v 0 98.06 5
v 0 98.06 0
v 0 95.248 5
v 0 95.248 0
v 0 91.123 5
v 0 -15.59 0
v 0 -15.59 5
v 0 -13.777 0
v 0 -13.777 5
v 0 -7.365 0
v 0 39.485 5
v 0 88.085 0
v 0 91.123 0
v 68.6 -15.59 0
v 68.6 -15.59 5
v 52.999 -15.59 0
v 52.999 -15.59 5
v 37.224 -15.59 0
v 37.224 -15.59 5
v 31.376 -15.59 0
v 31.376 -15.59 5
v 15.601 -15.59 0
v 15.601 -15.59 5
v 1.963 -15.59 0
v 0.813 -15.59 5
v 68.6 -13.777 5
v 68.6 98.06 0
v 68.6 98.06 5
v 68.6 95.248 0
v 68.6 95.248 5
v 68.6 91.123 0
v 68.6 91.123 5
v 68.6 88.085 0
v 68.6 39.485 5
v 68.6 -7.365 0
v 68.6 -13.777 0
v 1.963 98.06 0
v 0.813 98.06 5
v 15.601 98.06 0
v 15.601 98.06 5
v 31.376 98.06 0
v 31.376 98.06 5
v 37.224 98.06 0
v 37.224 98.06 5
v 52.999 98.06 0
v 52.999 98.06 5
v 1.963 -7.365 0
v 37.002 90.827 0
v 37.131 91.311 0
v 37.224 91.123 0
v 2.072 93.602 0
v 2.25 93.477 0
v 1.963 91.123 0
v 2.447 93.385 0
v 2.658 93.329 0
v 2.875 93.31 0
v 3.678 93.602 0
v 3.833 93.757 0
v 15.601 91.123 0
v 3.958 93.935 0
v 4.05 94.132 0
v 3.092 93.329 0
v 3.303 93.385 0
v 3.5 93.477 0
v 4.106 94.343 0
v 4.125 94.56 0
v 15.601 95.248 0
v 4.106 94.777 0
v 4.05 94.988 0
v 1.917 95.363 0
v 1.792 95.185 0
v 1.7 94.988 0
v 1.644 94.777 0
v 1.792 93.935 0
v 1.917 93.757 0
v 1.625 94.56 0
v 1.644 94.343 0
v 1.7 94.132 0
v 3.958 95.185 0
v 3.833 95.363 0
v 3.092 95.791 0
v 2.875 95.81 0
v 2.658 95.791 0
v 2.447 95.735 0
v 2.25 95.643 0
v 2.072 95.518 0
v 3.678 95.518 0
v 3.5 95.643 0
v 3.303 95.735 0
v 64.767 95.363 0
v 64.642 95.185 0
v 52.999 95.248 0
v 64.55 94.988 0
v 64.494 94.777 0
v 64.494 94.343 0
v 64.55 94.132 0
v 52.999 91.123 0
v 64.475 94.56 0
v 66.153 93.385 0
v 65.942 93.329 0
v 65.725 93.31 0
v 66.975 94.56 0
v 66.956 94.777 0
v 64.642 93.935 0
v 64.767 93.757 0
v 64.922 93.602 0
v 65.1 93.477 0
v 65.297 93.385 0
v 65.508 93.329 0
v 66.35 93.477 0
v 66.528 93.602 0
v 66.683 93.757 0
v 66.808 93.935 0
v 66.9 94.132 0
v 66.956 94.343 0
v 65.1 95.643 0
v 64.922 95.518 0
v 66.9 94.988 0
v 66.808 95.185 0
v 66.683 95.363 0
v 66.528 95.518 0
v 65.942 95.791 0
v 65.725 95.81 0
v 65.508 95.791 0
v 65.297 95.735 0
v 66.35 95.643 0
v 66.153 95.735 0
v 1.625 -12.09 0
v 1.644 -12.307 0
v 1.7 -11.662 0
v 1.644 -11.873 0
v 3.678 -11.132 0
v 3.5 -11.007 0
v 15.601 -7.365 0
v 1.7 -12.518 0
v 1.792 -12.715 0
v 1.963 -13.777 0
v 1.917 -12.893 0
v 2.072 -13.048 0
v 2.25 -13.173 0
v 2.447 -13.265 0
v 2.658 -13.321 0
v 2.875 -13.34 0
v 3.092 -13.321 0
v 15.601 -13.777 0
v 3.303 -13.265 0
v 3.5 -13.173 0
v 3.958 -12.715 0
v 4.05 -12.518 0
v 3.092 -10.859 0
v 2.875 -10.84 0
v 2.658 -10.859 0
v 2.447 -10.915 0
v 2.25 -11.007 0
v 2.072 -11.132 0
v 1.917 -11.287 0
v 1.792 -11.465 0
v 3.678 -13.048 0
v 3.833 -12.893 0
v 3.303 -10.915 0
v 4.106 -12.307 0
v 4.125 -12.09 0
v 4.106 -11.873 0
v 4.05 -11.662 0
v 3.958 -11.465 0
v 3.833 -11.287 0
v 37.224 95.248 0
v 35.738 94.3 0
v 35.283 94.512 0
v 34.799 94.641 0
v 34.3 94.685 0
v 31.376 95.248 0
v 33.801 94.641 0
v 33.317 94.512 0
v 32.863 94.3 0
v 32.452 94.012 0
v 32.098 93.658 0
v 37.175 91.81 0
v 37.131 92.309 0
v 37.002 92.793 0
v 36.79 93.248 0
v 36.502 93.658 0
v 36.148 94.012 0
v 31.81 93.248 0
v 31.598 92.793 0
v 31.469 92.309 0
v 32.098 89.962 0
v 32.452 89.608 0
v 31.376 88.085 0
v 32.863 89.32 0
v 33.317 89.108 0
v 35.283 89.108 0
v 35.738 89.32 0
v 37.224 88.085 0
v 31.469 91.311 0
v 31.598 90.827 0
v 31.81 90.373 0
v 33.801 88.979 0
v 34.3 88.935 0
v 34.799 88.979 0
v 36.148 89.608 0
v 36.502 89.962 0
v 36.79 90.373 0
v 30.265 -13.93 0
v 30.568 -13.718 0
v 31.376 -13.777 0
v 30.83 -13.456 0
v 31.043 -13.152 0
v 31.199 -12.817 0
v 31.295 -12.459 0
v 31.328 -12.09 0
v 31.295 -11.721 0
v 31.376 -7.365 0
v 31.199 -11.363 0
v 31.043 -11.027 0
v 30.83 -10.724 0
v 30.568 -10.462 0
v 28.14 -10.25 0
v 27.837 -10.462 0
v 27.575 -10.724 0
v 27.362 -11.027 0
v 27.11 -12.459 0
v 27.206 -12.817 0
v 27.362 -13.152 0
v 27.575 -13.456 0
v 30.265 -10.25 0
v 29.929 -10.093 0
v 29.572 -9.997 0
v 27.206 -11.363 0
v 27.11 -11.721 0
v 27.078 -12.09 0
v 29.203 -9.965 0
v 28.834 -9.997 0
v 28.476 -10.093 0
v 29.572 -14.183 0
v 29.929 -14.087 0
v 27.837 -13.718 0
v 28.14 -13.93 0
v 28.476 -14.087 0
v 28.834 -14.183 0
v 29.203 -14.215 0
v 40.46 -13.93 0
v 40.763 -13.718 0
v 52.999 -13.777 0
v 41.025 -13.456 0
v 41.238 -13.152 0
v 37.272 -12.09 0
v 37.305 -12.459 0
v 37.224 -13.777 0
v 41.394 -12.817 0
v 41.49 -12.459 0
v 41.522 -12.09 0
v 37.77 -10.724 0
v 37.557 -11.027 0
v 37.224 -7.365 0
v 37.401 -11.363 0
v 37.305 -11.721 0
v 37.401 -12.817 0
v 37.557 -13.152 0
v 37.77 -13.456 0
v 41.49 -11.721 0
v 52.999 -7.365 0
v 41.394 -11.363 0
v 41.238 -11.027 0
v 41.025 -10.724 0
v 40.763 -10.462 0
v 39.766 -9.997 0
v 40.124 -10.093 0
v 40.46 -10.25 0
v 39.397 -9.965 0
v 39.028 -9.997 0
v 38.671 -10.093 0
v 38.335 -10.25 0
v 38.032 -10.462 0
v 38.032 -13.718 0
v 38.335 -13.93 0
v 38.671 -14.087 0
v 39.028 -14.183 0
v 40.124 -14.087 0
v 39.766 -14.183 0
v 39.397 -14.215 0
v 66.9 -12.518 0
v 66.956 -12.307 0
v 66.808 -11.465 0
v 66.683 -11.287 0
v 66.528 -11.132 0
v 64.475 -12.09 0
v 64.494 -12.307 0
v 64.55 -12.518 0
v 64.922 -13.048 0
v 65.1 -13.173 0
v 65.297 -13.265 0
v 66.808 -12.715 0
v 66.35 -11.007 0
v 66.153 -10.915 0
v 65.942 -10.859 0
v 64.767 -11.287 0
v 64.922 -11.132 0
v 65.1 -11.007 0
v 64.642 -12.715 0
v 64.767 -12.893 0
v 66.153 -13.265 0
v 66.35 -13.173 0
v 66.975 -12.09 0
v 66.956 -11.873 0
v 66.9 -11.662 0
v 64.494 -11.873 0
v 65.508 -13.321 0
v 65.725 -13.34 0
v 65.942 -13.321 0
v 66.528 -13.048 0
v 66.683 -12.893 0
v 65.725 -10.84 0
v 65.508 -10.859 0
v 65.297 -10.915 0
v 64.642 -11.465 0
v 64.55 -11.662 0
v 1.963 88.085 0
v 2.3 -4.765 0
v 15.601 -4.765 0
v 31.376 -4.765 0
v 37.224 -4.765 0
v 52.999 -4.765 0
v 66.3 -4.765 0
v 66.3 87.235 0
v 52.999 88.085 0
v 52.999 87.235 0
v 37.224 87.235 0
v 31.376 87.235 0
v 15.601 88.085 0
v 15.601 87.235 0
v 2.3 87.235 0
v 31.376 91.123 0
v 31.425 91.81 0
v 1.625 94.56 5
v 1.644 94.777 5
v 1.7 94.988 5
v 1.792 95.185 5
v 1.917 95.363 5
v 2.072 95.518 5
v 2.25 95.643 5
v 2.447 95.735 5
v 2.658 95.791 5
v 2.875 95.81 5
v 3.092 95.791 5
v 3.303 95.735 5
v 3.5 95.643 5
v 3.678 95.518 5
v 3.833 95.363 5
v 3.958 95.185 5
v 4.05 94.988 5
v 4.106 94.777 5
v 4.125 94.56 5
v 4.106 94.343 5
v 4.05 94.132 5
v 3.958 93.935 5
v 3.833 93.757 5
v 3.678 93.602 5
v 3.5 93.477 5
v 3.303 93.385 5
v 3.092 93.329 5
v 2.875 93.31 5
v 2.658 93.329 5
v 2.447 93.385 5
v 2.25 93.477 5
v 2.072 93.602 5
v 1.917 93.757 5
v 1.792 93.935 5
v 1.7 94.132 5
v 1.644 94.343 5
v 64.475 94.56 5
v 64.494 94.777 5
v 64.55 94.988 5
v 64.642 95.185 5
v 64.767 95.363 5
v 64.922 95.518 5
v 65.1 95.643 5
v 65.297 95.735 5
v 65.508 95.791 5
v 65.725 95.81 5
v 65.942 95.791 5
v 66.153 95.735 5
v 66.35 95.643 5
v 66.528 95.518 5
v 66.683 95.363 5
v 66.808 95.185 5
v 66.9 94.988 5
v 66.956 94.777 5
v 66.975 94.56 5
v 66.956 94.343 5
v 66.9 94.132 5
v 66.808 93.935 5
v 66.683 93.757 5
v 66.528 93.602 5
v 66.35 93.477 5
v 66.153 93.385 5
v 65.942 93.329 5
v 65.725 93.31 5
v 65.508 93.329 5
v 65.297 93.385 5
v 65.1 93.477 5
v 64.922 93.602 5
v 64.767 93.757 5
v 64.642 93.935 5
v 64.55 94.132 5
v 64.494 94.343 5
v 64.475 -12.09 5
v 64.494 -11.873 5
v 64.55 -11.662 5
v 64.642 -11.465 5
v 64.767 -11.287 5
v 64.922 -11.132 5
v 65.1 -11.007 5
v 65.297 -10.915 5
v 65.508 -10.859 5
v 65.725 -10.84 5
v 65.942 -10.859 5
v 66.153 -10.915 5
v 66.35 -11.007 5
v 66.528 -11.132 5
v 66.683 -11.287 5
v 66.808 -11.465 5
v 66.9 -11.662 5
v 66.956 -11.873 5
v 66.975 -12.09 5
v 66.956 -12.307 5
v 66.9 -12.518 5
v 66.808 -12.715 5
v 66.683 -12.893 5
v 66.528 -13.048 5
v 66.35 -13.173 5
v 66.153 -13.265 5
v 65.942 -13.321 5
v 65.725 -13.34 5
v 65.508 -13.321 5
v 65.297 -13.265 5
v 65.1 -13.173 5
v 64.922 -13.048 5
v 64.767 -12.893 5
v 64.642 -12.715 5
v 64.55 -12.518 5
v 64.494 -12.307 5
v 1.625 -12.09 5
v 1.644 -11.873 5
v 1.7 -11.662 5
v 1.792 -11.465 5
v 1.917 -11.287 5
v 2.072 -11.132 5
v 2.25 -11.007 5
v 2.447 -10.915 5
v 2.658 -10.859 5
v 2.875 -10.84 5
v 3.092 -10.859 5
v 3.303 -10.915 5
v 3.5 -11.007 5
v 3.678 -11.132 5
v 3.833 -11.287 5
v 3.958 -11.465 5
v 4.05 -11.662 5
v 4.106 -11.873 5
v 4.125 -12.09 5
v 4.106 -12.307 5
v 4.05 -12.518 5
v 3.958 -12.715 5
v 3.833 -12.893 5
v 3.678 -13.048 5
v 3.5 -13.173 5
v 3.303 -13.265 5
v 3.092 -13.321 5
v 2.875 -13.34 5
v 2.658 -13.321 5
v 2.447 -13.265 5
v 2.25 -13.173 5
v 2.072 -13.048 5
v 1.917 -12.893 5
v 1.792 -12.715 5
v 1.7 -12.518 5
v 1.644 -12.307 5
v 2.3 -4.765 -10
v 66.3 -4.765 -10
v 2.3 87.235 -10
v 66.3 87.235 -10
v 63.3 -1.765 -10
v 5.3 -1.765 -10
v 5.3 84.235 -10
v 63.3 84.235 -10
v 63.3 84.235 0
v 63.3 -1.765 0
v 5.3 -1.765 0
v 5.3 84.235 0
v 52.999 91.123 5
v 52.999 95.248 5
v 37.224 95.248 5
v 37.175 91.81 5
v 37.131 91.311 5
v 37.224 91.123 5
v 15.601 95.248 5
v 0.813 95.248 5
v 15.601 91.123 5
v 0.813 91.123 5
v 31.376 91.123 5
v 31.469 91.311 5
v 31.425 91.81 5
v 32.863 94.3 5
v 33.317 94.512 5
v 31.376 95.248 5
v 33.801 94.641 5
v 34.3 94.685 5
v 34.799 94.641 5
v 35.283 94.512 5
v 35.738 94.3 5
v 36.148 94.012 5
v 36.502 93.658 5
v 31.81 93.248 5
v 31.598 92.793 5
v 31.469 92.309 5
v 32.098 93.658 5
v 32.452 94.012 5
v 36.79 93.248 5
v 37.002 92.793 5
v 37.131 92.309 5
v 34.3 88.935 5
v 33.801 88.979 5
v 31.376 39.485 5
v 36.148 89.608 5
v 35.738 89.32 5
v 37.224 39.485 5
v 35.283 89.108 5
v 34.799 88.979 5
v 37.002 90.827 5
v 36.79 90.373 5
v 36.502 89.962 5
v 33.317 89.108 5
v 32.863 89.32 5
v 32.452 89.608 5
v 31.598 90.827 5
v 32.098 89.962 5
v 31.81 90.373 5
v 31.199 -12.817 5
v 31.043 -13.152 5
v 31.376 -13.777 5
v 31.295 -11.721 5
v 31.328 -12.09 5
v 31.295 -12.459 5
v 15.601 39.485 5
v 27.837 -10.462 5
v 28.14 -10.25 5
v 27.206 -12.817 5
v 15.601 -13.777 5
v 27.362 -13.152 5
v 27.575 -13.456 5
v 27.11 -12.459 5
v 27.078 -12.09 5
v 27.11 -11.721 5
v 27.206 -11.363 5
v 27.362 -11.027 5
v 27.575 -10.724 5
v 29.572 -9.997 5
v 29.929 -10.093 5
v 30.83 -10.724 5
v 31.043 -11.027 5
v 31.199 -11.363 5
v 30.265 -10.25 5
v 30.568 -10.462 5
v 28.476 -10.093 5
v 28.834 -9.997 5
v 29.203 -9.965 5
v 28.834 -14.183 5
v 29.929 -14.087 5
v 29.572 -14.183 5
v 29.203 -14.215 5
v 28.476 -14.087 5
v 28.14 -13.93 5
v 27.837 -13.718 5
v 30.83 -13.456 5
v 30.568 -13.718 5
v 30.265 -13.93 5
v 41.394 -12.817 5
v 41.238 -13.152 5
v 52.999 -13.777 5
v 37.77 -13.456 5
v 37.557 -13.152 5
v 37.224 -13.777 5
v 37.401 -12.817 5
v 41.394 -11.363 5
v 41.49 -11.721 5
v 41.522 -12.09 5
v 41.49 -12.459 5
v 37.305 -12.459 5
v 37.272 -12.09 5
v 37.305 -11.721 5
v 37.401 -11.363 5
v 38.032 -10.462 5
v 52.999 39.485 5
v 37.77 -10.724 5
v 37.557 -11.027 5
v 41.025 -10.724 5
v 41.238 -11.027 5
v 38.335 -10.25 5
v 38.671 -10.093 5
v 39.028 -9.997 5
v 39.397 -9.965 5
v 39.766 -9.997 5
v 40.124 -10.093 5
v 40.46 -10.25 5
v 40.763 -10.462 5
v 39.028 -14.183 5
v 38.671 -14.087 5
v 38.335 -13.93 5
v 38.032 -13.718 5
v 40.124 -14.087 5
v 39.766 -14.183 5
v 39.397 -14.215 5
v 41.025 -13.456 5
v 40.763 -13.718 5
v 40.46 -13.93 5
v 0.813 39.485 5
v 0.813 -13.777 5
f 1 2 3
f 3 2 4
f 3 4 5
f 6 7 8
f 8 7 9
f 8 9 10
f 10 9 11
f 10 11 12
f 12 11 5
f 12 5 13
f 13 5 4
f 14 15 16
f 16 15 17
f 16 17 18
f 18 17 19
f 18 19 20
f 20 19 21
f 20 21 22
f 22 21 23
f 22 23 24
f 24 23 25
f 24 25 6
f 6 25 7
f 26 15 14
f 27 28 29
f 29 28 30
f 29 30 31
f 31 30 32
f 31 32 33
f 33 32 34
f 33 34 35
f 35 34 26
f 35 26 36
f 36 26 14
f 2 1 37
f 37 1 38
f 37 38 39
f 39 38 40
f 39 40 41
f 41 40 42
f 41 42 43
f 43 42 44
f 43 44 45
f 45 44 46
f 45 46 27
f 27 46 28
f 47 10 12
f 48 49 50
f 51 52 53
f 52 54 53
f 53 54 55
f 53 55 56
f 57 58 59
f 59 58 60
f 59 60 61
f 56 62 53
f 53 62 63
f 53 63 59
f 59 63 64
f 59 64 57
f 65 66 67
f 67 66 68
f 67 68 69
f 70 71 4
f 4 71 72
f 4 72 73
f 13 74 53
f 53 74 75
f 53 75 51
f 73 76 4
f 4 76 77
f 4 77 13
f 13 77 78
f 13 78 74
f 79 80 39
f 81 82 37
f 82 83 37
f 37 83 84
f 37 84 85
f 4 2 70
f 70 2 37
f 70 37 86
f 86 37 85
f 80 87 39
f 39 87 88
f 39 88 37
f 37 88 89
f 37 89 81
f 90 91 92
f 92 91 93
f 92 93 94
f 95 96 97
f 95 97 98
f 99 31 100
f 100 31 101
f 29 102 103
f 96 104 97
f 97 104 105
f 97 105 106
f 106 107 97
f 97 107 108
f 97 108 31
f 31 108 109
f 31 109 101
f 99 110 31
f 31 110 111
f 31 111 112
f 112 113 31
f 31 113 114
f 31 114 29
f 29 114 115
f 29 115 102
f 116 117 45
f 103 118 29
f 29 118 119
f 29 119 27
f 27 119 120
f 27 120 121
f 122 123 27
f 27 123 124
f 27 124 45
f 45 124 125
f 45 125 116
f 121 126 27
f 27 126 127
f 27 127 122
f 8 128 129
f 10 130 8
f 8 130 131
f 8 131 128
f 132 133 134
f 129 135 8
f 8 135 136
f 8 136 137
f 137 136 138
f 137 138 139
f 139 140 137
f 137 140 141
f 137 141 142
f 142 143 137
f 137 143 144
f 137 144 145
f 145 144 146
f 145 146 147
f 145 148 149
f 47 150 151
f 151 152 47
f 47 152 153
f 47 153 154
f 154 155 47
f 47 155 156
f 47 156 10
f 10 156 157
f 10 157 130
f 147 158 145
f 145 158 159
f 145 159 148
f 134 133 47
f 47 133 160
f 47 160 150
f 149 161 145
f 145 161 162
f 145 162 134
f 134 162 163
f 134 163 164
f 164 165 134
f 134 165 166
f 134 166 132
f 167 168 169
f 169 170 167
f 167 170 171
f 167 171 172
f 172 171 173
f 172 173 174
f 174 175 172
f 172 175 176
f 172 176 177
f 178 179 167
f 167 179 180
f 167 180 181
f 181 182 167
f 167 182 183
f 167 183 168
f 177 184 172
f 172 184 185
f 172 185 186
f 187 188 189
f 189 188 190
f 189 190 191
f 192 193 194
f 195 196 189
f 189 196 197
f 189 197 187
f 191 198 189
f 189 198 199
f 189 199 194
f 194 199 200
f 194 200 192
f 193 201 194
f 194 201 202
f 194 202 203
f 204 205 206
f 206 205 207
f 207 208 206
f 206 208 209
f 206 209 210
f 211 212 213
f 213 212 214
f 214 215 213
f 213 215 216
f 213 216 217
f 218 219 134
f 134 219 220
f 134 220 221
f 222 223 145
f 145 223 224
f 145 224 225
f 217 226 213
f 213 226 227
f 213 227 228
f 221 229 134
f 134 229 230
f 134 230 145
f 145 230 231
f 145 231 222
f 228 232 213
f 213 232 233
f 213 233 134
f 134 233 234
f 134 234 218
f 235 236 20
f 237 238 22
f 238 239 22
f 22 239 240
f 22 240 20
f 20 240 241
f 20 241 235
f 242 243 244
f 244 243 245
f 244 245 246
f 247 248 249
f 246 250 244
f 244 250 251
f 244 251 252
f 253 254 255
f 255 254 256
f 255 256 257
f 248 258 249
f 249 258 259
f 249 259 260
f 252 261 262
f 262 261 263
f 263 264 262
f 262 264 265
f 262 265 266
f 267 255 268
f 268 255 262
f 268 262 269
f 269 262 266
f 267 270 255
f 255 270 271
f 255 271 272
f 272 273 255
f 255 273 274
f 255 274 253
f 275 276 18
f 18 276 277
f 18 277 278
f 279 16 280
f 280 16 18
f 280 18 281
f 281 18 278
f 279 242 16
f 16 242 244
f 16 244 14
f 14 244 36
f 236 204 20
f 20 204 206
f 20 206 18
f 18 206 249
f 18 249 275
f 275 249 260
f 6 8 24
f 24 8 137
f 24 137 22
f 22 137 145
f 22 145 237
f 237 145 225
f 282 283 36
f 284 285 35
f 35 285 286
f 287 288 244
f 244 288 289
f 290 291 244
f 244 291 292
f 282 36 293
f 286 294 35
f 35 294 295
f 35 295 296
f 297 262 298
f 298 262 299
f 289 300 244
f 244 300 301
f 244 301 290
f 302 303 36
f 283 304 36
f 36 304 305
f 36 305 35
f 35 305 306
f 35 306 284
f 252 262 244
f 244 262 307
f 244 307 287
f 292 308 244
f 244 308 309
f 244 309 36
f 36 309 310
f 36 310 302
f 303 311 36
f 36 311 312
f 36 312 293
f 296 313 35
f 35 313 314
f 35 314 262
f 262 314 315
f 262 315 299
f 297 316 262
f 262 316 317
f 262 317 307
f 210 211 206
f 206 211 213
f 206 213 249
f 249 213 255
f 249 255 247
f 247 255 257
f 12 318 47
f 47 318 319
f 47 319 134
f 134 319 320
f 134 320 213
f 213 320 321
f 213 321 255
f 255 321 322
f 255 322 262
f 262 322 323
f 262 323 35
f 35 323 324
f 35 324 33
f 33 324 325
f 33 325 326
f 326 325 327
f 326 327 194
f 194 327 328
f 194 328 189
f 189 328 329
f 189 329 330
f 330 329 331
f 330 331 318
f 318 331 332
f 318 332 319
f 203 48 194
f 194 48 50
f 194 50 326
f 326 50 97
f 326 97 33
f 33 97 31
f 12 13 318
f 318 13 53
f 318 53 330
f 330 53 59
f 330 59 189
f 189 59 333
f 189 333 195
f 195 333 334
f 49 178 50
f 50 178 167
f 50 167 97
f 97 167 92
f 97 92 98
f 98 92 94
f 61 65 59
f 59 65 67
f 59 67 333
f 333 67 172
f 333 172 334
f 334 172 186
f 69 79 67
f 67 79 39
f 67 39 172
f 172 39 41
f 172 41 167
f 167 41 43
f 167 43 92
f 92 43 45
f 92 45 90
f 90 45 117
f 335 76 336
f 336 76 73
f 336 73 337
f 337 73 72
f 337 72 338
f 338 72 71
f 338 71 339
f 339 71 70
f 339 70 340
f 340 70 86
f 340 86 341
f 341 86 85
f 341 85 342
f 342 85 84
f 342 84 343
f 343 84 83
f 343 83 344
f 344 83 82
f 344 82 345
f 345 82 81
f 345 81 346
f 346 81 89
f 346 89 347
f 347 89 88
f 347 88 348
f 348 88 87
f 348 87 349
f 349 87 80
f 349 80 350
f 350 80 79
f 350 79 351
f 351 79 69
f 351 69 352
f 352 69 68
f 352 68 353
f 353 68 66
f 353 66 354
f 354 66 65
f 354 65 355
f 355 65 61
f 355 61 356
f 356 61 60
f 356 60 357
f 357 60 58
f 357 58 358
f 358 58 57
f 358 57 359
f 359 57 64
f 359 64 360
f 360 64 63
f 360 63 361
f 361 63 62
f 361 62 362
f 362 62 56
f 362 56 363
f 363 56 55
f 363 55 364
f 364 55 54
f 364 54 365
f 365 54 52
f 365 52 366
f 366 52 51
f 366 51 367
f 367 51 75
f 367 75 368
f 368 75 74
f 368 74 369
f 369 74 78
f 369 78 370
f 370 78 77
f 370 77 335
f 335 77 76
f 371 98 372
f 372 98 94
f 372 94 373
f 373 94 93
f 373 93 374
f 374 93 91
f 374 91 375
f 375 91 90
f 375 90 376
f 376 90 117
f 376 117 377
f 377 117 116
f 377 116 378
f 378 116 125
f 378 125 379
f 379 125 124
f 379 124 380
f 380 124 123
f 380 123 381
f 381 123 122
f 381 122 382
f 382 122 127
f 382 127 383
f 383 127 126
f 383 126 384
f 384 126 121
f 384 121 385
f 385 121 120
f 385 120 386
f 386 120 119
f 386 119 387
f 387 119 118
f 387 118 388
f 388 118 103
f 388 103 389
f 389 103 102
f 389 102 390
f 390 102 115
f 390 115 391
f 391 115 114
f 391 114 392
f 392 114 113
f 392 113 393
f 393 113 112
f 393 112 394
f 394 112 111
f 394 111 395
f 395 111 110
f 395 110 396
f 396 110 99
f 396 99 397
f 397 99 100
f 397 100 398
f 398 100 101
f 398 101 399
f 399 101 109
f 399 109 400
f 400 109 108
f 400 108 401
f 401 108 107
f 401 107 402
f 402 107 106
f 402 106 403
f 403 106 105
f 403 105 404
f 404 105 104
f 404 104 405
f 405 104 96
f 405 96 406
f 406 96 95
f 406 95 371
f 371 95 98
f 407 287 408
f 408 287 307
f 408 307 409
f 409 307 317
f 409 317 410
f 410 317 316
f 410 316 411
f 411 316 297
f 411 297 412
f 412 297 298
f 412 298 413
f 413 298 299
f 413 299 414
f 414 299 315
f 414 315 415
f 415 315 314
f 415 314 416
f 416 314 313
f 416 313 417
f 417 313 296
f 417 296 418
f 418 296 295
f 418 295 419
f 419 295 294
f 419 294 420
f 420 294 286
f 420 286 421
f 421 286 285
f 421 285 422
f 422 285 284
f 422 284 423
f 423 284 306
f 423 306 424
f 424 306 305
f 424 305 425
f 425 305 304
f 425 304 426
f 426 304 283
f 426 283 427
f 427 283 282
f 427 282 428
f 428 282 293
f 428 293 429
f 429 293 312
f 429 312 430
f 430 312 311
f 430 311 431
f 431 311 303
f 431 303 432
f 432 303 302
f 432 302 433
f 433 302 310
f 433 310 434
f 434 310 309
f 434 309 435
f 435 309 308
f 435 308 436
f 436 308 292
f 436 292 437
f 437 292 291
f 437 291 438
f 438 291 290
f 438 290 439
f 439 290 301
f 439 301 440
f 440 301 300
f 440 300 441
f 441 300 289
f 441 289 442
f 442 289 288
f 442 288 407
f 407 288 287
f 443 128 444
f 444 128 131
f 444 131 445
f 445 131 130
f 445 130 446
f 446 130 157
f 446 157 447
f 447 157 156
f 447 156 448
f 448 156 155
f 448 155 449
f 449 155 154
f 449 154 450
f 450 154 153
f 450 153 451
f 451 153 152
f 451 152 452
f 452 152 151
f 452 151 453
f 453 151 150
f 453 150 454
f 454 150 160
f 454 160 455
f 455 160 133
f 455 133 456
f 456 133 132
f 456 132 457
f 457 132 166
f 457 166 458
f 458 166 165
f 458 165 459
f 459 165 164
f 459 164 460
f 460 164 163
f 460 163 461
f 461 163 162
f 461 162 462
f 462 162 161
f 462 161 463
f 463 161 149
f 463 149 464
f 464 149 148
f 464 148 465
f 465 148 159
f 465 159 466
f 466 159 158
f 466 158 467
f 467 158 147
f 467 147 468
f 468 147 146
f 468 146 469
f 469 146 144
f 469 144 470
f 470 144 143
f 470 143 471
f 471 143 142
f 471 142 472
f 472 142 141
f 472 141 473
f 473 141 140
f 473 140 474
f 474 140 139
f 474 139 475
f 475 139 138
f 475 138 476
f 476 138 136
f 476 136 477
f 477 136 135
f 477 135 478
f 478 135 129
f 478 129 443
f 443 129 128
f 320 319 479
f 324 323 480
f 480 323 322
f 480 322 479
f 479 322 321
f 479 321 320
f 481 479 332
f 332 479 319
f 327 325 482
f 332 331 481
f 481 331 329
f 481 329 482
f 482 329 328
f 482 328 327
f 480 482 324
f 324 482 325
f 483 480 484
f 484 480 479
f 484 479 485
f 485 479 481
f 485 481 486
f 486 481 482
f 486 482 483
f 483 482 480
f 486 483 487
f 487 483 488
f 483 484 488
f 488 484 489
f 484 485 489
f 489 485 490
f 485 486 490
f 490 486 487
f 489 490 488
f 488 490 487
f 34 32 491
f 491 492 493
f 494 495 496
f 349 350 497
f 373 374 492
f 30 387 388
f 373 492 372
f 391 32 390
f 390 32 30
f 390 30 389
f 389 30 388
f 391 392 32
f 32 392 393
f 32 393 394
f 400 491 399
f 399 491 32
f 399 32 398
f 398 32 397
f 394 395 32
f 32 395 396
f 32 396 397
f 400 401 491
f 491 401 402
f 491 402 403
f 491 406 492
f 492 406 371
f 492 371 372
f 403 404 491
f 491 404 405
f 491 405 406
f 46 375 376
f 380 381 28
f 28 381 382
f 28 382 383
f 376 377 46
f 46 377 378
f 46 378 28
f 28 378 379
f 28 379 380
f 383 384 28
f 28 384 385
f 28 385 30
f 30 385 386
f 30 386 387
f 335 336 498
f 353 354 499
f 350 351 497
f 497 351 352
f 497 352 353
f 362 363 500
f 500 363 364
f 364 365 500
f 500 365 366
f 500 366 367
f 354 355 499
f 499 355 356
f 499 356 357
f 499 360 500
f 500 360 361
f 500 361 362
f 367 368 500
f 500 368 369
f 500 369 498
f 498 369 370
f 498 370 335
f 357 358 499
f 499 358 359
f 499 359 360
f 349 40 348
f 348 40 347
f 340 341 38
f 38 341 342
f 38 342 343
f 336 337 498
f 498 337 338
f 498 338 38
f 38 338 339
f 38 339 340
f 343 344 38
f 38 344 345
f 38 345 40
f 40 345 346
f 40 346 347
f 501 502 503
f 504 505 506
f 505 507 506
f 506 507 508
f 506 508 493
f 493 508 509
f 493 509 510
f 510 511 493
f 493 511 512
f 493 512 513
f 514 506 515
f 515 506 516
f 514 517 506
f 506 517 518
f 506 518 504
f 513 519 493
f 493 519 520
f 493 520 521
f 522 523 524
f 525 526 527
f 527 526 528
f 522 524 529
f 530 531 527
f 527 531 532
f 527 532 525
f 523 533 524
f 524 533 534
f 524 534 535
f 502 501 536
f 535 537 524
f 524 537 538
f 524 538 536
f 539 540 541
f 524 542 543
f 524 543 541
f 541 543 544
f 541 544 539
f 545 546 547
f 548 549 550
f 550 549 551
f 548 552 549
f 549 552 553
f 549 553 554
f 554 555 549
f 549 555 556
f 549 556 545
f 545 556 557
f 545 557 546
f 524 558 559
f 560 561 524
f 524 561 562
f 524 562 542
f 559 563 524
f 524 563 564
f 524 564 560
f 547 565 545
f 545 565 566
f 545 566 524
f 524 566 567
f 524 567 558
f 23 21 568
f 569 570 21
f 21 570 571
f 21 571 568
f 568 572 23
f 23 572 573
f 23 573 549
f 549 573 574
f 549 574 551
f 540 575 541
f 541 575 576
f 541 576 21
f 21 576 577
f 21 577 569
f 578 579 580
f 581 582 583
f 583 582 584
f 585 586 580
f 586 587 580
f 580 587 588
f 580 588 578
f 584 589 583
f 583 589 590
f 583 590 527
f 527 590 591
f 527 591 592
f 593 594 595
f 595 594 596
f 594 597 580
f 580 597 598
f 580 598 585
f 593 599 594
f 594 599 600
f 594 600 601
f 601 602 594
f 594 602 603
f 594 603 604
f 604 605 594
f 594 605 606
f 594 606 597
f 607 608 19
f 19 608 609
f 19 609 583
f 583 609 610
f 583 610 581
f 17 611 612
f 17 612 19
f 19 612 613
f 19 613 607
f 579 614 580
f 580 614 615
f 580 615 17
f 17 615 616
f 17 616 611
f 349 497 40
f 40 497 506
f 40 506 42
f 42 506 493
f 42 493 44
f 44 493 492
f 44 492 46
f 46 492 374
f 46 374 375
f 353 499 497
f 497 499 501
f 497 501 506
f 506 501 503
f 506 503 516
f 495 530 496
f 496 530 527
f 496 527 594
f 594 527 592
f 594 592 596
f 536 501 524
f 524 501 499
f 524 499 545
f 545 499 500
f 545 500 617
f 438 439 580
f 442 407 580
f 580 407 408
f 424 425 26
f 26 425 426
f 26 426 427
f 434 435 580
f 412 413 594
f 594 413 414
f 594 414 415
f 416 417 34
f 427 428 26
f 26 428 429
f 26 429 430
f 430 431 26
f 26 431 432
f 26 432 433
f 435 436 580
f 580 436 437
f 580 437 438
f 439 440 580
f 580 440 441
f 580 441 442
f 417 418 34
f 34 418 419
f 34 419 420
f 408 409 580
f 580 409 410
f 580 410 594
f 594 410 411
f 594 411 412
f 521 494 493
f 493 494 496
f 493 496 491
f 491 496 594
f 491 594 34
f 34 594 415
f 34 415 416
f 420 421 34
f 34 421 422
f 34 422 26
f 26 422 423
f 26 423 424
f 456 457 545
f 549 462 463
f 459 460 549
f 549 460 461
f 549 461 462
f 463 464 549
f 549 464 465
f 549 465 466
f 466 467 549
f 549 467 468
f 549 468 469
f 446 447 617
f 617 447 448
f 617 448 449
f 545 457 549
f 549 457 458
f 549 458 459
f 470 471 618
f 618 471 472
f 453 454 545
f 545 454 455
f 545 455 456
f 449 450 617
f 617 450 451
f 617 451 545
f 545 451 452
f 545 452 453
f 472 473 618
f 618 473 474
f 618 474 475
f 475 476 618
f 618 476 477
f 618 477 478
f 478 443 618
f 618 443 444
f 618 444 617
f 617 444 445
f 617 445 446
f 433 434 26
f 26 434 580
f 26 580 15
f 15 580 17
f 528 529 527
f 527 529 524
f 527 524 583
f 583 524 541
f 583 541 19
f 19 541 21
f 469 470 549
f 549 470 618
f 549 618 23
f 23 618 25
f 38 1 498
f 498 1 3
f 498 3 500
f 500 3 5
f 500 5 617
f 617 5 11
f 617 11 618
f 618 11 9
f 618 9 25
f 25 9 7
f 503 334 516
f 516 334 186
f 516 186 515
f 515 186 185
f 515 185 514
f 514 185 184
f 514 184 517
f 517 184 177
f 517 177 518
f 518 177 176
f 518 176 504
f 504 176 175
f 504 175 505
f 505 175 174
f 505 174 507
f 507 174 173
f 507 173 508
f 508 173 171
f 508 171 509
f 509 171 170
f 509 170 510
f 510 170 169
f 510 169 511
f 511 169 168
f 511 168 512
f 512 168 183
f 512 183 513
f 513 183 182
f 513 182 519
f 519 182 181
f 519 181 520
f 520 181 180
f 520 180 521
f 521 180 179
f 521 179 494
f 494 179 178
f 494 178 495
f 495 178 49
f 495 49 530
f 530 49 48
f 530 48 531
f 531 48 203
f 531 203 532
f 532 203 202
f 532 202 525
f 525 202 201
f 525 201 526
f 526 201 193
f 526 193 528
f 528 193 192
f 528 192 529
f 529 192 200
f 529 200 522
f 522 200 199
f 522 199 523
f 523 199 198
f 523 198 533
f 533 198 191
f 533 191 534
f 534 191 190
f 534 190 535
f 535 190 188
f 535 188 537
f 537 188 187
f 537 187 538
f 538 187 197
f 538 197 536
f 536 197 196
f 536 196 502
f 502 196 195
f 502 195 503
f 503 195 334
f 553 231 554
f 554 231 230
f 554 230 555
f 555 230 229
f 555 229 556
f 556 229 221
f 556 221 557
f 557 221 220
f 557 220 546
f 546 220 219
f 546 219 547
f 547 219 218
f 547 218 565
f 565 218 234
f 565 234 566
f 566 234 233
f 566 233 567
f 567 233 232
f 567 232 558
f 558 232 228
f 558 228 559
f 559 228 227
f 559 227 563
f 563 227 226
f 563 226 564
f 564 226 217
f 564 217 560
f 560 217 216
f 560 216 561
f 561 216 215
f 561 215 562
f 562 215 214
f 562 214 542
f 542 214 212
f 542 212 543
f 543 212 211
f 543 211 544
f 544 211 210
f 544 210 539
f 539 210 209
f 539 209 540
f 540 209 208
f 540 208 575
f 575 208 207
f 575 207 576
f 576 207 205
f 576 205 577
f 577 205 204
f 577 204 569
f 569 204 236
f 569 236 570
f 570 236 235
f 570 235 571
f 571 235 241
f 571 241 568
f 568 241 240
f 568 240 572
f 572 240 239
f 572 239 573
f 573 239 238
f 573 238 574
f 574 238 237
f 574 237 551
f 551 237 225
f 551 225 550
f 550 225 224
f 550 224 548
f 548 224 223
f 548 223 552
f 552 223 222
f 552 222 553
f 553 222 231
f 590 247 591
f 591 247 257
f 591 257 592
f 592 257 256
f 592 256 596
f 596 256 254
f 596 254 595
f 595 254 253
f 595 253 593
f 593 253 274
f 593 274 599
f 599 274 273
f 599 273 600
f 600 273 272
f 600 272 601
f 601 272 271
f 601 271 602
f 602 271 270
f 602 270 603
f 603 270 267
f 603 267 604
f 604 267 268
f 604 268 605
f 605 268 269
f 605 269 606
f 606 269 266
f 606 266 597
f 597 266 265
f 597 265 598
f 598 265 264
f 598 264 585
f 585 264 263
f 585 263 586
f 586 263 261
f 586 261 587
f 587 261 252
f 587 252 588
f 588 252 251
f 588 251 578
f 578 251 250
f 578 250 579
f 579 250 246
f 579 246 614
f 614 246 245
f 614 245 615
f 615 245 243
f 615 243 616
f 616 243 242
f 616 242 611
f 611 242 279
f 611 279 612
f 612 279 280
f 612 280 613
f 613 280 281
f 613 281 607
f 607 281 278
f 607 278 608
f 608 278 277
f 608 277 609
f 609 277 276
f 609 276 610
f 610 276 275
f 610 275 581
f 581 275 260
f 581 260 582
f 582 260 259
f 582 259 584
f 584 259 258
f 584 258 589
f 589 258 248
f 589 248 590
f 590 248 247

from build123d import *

# Parameters (mm, degrees)
SKETCH1_W                        = 68.600000001
SKETCH1_H                        = 113.65
BRACKETBASE_DEPTH                = 5
ARDUINOMOUNTINGHOLES_DEPTH       = 22
ARDUINOMOUNTINGHOLES_DEPTH_BACK  = 120.777809299
ARDUINOMOUNTINGHOLESSKETCH_R     = 1.25
F_9VBATTERYMOUNTINGHOLESSKETCH_R = 1.25
F_9VBATTERYMOUNTINGHOLES_DEPTH   = 20
LEGBRACKETMOUNTINGHOLESSKETCH_R  = 2
LEGBRACKETMOUNTINGHOLES_DEPTH    = 13
BACKSIDEMOUNTINGHOLESSKETCH_R    = 1.25
BACKSIDEMOUNTINGHOLES_DEPTH      = 24
COVER_START                      = -5
SKETCH2_R                        = 1.25
SKETCH2_R_2                      = 2
COVER_DEPTH                      = 5
SKETCH3_W                        = 64
SKETCH3_H                        = 92
SKETCH3_W_2                      = 58
SKETCH3_H_2                      = 86
BREADBOARDCAVITY_DEPTH           = 10
SKETCH4_W                        = 64
SKETCH4_H                        = 10
CUT_EXTRUDE1_DEPTH               = 125.514820906
SKETCH5_R                        = 2.875
TOGGLESWITCHHOLE_DEPTH           = 10
SKETCH6_R                        = 2.125
CUT_EXTRUDE2_DEPTH               = 10


with BuildPart() as part:
    # Sketch1 → bracketBase (new body)
    with BuildSketch(Plane.XY):
        with Locations((34.3, 41.235000001)):
            Rectangle(SKETCH1_W, SKETCH1_H)
    extrude(amount=BRACKETBASE_DEPTH)

    # arduinoMountingHolesSketch → arduinoMountingHoles (cut, two sides: drawn at the far end of the back side and taken through both)
    with BuildSketch(Plane.XY.offset(-ARDUINOMOUNTINGHOLES_DEPTH_BACK)):
        with Locations((2.54, 2.280000001)):
            Circle(ARDUINOMOUNTINGHOLESSKETCH_R)
        with Locations((2.54, 30.450000001)):
            Circle(ARDUINOMOUNTINGHOLESSKETCH_R)
        with Locations((54.600000001, 35.270000001)):
            Circle(ARDUINOMOUNTINGHOLESSKETCH_R)
        with Locations((53.350000001, -13.049999999)):
            Circle(ARDUINOMOUNTINGHOLESSKETCH_R)
    extrude(amount=ARDUINOMOUNTINGHOLES_DEPTH + ARDUINOMOUNTINGHOLES_DEPTH_BACK, mode=Mode.SUBTRACT)

    # 9VbatteryMountingHolesSketch → 9VbatteryMountingHoles (cut)
    with BuildSketch(Plane.XY):
        with Locations((8.625000001, 86.060000001)):
            Circle(F_9VBATTERYMOUNTINGHOLESSKETCH_R)
        with Locations(Location((59.975000001, 86.060000001, 0), (0, 0, 180))):
            Circle(F_9VBATTERYMOUNTINGHOLESSKETCH_R)
        with Locations(Location((8.625000001, 42.810000001, 0), (0, 0, 180))):
            Circle(F_9VBATTERYMOUNTINGHOLESSKETCH_R)
        with Locations((59.975000001, 42.810000001)):
            Circle(F_9VBATTERYMOUNTINGHOLESSKETCH_R)
    extrude(amount=F_9VBATTERYMOUNTINGHOLES_DEPTH, mode=Mode.SUBTRACT)

    # legBracketMountingHolesSketch → legBracketMountingHoles (cut)
    with BuildSketch(Plane.XY):
        with Locations((29.202551646, 94.560000001)):
            Circle(LEGBRACKETMOUNTINGHOLESSKETCH_R)
        with Locations(Location((39.397448356, 94.560000001, 0), (0, 0, 180))):
            Circle(LEGBRACKETMOUNTINGHOLESSKETCH_R)
    extrude(amount=LEGBRACKETMOUNTINGHOLES_DEPTH, mode=Mode.SUBTRACT)

    # backsideMountingHolesSketch → backsideMountingHoles (cut)
    with BuildSketch(Plane.XY):
        with Locations((2.875000001, 94.560000001)):
            Circle(BACKSIDEMOUNTINGHOLESSKETCH_R)
        with Locations(Location((65.725000001, 94.560000001, 0), (0, 0, 180))):
            Circle(BACKSIDEMOUNTINGHOLESSKETCH_R)
        with Locations((65.725000001, -12.089999999)):
            Circle(BACKSIDEMOUNTINGHOLESSKETCH_R)
        with Locations(Location((2.875000001, -12.089999999, 0), (0, 0, 180))):
            Circle(BACKSIDEMOUNTINGHOLESSKETCH_R)
    extrude(amount=BACKSIDEMOUNTINGHOLES_DEPTH, mode=Mode.SUBTRACT)

    # Sketch2 → cover (add)
    with BuildSketch(Plane.XY.offset(5).offset(COVER_START)):
        with Locations((53.350000001, -13.049999999)):
            Circle(SKETCH2_R)
        with Locations((2.54, 2.280000001)):
            Circle(SKETCH2_R)
        with Locations((2.54, 30.450000001)):
            Circle(SKETCH2_R)
        with Locations((54.600000001, 35.270000001)):
            Circle(SKETCH2_R)
        with Locations((59.975000001, 42.810000001)):
            Circle(SKETCH2_R)
        with Locations((8.625000001, 42.810000001)):
            Circle(SKETCH2_R)
        with Locations((59.975000001, 86.060000001)):
            Circle(SKETCH2_R)
        with Locations((39.397448356, 94.560000001)):
            Circle(SKETCH2_R_2)
        with Locations((29.202551646, 94.560000001)):
            Circle(SKETCH2_R_2)
        with Locations((8.625000001, 86.060000001)):
            Circle(SKETCH2_R)
    extrude(amount=COVER_DEPTH)

    # Sketch3 → breadBoardCavity (add)
    with BuildSketch(Plane.XY.offset(5)):
        with Locations((34.300000001, 41.235000001)):
            Rectangle(SKETCH3_W, SKETCH3_H)
        with Locations((34.300000001, 41.235000001)):
            Rectangle(SKETCH3_W_2, SKETCH3_H_2, mode=Mode.SUBTRACT)
    breadboardcavity = extrude(amount=BREADBOARDCAVITY_DEPTH)

    # Mirror1: breadBoardCavity across plane
    add(breadboardcavity.mirror(Plane.XY.offset(2.5)))

    # Sketch4 → Cut-Extrude1 (cut, through all)
    with BuildSketch(Plane(origin=(0, 87.235000001, 0), x_dir=(1, 0, 0), z_dir=(0, 1, 0))):
        with Locations((34.300000001, -10)):
            Rectangle(SKETCH4_W, SKETCH4_H)
    extrude(amount=-CUT_EXTRUDE1_DEPTH, mode=Mode.SUBTRACT)

    # Sketch5 → toggleSwitchHole (cut)
    with BuildSketch(Plane(origin=(0, 0, 0), x_dir=(-1, 0, 0), z_dir=(0, 0, -1))):
        with Locations((-34.300000001, 91.810031891)):
            Circle(SKETCH5_R)
    extrude(amount=-TOGGLESWITCHHOLE_DEPTH, mode=Mode.SUBTRACT)

    # Sketch6 → Cut-Extrude2 (cut)
    with BuildSketch(Plane(origin=(0, 0, 0), x_dir=(-1, 0, 0), z_dir=(0, 0, -1))):
        with Locations((-39.397448351, -12.089999999)):
            Circle(SKETCH6_R)
        with Locations(Location((-29.202551651, -12.089999999, 0), (0, 0, 180))):
            Circle(SKETCH6_R)
    extrude(amount=-CUT_EXTRUDE2_DEPTH, mode=Mode.SUBTRACT)


solid = part.part
